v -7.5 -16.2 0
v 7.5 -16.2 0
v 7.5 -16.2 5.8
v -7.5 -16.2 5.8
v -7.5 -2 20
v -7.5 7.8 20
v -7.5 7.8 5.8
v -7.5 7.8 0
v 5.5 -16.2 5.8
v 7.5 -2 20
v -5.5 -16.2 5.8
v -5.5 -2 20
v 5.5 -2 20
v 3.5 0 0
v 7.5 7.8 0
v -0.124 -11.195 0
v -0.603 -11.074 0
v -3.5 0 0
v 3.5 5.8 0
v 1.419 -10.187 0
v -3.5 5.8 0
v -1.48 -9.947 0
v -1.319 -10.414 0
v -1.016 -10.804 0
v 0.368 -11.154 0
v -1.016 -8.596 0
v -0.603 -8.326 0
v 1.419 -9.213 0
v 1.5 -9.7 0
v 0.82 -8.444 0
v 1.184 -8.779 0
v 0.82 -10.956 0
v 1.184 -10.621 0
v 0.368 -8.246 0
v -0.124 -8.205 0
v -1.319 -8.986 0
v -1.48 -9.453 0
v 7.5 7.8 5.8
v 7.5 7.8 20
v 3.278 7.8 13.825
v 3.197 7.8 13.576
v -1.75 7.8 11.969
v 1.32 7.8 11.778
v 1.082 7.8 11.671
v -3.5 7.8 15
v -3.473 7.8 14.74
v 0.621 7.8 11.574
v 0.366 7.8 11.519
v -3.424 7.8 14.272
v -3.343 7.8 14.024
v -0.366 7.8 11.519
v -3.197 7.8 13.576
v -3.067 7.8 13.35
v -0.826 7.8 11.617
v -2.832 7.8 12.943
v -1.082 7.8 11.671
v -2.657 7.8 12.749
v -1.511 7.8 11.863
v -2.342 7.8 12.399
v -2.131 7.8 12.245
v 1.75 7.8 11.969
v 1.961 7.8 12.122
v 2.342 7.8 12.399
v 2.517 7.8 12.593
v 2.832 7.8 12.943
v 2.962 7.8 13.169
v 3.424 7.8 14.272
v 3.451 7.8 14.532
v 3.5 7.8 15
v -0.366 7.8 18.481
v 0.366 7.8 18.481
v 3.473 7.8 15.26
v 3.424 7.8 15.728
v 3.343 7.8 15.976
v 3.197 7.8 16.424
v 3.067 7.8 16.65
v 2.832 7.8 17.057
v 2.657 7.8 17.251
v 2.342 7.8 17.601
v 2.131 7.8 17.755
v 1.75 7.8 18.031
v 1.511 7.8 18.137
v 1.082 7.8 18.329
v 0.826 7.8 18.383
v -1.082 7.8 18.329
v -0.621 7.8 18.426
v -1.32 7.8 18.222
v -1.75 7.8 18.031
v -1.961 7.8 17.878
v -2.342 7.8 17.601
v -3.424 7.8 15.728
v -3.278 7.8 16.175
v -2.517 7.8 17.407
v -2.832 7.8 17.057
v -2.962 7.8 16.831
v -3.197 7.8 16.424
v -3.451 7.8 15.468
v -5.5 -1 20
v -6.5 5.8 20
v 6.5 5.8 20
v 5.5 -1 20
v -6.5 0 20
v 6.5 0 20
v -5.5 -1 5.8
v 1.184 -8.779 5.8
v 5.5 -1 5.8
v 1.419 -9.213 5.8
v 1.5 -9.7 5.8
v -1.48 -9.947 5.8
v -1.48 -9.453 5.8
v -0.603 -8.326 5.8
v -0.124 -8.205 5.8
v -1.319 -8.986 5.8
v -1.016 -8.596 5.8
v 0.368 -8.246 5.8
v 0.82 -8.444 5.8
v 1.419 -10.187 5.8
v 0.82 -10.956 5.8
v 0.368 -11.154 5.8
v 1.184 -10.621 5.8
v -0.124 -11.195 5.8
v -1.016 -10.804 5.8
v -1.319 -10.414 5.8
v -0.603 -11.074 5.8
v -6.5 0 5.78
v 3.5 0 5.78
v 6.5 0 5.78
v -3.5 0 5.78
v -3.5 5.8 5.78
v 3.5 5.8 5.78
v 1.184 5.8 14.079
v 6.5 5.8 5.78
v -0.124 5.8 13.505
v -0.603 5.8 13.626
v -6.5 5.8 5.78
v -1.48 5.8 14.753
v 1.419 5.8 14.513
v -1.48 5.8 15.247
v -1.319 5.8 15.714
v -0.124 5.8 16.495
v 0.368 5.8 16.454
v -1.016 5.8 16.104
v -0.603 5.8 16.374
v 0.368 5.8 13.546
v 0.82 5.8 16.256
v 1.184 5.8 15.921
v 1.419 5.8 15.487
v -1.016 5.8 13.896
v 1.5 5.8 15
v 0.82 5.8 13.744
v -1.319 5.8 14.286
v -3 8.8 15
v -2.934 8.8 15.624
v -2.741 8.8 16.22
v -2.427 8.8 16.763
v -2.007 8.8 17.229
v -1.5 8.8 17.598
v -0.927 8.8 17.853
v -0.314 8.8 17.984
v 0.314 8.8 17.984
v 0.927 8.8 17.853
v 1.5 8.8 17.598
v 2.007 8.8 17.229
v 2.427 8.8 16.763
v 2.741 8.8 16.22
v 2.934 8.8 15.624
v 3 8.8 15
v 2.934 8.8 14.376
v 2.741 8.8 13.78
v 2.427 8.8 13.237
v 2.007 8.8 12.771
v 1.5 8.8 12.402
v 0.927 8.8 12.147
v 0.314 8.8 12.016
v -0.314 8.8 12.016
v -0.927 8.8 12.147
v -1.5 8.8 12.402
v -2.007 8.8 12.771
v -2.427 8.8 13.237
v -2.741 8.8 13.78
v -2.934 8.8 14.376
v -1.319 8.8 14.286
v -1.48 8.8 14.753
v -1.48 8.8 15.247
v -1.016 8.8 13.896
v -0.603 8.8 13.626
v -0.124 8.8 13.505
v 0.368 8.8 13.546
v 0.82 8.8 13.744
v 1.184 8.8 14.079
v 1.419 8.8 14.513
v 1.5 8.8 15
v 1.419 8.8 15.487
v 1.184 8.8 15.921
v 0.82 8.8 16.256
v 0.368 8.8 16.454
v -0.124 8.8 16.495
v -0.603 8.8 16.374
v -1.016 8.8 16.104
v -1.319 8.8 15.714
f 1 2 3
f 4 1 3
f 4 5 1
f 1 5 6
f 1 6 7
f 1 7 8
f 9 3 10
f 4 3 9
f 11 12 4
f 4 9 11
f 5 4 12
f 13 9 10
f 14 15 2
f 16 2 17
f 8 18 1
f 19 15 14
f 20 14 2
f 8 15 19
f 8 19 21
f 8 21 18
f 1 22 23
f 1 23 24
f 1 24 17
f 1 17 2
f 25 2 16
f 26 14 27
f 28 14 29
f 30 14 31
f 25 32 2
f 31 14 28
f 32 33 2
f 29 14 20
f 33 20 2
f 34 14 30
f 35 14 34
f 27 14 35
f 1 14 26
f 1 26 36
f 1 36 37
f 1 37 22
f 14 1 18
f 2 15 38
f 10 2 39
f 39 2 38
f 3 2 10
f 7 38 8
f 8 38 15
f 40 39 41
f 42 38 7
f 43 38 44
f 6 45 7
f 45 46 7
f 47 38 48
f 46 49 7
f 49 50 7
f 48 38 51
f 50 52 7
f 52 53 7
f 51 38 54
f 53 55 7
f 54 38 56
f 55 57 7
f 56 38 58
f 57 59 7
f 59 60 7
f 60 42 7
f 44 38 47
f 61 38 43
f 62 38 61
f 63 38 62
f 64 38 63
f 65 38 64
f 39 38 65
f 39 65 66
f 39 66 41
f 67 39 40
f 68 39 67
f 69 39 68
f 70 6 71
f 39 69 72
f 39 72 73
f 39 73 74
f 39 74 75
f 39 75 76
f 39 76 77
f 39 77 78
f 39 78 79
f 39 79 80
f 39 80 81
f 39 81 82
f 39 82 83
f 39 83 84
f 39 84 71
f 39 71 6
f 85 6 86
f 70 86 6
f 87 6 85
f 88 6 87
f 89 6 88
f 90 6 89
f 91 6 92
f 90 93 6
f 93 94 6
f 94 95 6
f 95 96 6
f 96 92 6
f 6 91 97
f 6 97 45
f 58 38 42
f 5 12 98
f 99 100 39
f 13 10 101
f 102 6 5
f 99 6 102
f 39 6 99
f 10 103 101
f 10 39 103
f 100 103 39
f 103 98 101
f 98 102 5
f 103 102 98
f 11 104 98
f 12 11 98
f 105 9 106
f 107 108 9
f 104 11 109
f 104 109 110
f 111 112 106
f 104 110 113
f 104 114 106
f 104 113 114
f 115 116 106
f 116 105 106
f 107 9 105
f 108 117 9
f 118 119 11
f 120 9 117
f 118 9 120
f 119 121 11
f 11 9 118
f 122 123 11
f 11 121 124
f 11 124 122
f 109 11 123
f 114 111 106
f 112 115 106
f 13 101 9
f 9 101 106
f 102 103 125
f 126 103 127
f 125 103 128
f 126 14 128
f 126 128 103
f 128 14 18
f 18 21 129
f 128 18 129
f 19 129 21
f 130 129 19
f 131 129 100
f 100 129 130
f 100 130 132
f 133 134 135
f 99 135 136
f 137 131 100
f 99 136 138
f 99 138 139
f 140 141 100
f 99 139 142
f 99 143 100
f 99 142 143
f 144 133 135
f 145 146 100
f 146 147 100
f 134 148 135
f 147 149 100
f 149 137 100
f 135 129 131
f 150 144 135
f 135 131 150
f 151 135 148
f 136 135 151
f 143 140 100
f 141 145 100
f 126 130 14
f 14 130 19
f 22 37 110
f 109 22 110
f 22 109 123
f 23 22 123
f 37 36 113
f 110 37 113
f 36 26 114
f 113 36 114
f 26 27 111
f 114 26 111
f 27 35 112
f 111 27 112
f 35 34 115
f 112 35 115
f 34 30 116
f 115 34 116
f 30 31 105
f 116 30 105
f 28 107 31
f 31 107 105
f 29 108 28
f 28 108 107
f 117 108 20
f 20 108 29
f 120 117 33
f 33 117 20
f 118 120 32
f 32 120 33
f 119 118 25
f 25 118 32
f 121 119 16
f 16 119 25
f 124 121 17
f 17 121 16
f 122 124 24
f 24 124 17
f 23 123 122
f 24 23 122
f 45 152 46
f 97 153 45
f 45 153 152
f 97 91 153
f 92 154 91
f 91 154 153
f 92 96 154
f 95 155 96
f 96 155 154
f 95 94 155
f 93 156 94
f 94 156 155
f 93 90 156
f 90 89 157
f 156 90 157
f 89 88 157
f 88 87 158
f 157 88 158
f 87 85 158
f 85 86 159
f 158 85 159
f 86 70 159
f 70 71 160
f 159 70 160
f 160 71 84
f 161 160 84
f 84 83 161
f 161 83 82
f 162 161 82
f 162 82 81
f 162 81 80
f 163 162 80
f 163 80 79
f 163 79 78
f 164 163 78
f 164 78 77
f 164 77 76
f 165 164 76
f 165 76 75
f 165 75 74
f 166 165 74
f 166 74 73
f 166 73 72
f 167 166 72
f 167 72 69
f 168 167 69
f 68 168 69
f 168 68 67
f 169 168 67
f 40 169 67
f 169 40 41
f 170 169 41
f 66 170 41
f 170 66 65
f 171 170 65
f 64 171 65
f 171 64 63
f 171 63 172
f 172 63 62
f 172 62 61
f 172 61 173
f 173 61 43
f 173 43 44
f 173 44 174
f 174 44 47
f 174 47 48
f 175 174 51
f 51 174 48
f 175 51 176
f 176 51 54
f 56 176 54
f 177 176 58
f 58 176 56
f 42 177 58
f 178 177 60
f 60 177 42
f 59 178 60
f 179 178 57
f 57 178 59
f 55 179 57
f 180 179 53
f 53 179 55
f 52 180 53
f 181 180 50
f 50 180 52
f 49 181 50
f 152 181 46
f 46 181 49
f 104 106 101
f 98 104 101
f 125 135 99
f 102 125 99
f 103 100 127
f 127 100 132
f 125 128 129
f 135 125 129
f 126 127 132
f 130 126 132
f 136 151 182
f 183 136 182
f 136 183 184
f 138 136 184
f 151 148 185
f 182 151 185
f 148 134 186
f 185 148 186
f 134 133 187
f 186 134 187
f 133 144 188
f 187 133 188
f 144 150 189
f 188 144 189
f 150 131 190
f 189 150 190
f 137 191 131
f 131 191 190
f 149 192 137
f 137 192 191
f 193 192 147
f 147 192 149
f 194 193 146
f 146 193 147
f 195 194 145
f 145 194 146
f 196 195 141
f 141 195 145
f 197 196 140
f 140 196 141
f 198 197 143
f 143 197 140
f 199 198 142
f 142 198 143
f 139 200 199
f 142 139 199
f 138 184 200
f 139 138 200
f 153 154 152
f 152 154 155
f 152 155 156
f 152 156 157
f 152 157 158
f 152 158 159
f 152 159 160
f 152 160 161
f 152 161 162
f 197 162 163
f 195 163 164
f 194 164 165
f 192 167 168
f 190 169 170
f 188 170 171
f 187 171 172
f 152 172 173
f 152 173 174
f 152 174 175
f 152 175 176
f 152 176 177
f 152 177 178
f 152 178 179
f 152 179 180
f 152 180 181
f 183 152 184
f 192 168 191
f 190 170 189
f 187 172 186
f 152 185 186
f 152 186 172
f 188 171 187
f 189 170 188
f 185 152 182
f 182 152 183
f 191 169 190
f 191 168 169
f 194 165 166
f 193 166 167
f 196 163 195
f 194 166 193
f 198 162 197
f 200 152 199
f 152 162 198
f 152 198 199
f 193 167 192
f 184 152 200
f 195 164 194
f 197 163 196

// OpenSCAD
module leg(x,y,z)
{
	boardWidth = 5.8;
	legWidth = 13;
	legEndWidth = 7;
	legHeight = 40;
	union(){	
		translate([x-(legEndWidth/2),y,z])cube([legEndWidth,boardWidth,boardWidth],false);
		translate([x-(legWidth/2),y,z-(legHeight-0.01)])cube([legWidth,boardWidth,legHeight],false);
	}
}

module endBlock(x,y,z){
	boardWidth = 5.8;
	width = 15;
	height = 20;
	depth = 24;
	bodyWidth = 2;
	stopScrew = 13.5;
	difference(){
		difference(){
			union(){
				translate([x,y+boardWidth+bodyWidth+1,z-(height-5)]){
					rotate([90,0,0]){
						cylinder(r1=3,r2=5,h=bodyWidth+2,$fs=0.5);
					}
				}
				difference(){
					hull(){
						translate([x-(width/2),y-bodyWidth,z-(height)]){
							cube([width,boardWidth+(bodyWidth*2),bodyWidth],false);
						}
						translate([x-(width/2),y-(depth-boardWidth-bodyWidth),z-(boardWidth)]){
							cube([width,depth,boardWidth],false);
						}
					}
					translate([x-(width/2)+(bodyWidth),y-(depth-boardWidth-bodyWidth),z-(height)]){
						cube([width-(bodyWidth*2),depth-(boardWidth+3),height-boardWidth],false);
					}	
				}
			}
			translate([x,y+boardWidth+bodyWidth+2,z-(height-5)]){
				rotate([90,0,0]){
					cylinder(r=1.5,h=bodyWidth+3,$fs=0.5);
				}
			}
		}
		translate([x,y-(bodyWidth-boardWidth+stopScrew),z-(boardWidth+2)]){
			cylinder(r=1.5,h=bodyWidth+105,$fs=0.5);
		}
	}
}

mirror([0,0,1])difference(){
	endBlock(0,0,0);
	#leg(0,0,-5.79);
}
